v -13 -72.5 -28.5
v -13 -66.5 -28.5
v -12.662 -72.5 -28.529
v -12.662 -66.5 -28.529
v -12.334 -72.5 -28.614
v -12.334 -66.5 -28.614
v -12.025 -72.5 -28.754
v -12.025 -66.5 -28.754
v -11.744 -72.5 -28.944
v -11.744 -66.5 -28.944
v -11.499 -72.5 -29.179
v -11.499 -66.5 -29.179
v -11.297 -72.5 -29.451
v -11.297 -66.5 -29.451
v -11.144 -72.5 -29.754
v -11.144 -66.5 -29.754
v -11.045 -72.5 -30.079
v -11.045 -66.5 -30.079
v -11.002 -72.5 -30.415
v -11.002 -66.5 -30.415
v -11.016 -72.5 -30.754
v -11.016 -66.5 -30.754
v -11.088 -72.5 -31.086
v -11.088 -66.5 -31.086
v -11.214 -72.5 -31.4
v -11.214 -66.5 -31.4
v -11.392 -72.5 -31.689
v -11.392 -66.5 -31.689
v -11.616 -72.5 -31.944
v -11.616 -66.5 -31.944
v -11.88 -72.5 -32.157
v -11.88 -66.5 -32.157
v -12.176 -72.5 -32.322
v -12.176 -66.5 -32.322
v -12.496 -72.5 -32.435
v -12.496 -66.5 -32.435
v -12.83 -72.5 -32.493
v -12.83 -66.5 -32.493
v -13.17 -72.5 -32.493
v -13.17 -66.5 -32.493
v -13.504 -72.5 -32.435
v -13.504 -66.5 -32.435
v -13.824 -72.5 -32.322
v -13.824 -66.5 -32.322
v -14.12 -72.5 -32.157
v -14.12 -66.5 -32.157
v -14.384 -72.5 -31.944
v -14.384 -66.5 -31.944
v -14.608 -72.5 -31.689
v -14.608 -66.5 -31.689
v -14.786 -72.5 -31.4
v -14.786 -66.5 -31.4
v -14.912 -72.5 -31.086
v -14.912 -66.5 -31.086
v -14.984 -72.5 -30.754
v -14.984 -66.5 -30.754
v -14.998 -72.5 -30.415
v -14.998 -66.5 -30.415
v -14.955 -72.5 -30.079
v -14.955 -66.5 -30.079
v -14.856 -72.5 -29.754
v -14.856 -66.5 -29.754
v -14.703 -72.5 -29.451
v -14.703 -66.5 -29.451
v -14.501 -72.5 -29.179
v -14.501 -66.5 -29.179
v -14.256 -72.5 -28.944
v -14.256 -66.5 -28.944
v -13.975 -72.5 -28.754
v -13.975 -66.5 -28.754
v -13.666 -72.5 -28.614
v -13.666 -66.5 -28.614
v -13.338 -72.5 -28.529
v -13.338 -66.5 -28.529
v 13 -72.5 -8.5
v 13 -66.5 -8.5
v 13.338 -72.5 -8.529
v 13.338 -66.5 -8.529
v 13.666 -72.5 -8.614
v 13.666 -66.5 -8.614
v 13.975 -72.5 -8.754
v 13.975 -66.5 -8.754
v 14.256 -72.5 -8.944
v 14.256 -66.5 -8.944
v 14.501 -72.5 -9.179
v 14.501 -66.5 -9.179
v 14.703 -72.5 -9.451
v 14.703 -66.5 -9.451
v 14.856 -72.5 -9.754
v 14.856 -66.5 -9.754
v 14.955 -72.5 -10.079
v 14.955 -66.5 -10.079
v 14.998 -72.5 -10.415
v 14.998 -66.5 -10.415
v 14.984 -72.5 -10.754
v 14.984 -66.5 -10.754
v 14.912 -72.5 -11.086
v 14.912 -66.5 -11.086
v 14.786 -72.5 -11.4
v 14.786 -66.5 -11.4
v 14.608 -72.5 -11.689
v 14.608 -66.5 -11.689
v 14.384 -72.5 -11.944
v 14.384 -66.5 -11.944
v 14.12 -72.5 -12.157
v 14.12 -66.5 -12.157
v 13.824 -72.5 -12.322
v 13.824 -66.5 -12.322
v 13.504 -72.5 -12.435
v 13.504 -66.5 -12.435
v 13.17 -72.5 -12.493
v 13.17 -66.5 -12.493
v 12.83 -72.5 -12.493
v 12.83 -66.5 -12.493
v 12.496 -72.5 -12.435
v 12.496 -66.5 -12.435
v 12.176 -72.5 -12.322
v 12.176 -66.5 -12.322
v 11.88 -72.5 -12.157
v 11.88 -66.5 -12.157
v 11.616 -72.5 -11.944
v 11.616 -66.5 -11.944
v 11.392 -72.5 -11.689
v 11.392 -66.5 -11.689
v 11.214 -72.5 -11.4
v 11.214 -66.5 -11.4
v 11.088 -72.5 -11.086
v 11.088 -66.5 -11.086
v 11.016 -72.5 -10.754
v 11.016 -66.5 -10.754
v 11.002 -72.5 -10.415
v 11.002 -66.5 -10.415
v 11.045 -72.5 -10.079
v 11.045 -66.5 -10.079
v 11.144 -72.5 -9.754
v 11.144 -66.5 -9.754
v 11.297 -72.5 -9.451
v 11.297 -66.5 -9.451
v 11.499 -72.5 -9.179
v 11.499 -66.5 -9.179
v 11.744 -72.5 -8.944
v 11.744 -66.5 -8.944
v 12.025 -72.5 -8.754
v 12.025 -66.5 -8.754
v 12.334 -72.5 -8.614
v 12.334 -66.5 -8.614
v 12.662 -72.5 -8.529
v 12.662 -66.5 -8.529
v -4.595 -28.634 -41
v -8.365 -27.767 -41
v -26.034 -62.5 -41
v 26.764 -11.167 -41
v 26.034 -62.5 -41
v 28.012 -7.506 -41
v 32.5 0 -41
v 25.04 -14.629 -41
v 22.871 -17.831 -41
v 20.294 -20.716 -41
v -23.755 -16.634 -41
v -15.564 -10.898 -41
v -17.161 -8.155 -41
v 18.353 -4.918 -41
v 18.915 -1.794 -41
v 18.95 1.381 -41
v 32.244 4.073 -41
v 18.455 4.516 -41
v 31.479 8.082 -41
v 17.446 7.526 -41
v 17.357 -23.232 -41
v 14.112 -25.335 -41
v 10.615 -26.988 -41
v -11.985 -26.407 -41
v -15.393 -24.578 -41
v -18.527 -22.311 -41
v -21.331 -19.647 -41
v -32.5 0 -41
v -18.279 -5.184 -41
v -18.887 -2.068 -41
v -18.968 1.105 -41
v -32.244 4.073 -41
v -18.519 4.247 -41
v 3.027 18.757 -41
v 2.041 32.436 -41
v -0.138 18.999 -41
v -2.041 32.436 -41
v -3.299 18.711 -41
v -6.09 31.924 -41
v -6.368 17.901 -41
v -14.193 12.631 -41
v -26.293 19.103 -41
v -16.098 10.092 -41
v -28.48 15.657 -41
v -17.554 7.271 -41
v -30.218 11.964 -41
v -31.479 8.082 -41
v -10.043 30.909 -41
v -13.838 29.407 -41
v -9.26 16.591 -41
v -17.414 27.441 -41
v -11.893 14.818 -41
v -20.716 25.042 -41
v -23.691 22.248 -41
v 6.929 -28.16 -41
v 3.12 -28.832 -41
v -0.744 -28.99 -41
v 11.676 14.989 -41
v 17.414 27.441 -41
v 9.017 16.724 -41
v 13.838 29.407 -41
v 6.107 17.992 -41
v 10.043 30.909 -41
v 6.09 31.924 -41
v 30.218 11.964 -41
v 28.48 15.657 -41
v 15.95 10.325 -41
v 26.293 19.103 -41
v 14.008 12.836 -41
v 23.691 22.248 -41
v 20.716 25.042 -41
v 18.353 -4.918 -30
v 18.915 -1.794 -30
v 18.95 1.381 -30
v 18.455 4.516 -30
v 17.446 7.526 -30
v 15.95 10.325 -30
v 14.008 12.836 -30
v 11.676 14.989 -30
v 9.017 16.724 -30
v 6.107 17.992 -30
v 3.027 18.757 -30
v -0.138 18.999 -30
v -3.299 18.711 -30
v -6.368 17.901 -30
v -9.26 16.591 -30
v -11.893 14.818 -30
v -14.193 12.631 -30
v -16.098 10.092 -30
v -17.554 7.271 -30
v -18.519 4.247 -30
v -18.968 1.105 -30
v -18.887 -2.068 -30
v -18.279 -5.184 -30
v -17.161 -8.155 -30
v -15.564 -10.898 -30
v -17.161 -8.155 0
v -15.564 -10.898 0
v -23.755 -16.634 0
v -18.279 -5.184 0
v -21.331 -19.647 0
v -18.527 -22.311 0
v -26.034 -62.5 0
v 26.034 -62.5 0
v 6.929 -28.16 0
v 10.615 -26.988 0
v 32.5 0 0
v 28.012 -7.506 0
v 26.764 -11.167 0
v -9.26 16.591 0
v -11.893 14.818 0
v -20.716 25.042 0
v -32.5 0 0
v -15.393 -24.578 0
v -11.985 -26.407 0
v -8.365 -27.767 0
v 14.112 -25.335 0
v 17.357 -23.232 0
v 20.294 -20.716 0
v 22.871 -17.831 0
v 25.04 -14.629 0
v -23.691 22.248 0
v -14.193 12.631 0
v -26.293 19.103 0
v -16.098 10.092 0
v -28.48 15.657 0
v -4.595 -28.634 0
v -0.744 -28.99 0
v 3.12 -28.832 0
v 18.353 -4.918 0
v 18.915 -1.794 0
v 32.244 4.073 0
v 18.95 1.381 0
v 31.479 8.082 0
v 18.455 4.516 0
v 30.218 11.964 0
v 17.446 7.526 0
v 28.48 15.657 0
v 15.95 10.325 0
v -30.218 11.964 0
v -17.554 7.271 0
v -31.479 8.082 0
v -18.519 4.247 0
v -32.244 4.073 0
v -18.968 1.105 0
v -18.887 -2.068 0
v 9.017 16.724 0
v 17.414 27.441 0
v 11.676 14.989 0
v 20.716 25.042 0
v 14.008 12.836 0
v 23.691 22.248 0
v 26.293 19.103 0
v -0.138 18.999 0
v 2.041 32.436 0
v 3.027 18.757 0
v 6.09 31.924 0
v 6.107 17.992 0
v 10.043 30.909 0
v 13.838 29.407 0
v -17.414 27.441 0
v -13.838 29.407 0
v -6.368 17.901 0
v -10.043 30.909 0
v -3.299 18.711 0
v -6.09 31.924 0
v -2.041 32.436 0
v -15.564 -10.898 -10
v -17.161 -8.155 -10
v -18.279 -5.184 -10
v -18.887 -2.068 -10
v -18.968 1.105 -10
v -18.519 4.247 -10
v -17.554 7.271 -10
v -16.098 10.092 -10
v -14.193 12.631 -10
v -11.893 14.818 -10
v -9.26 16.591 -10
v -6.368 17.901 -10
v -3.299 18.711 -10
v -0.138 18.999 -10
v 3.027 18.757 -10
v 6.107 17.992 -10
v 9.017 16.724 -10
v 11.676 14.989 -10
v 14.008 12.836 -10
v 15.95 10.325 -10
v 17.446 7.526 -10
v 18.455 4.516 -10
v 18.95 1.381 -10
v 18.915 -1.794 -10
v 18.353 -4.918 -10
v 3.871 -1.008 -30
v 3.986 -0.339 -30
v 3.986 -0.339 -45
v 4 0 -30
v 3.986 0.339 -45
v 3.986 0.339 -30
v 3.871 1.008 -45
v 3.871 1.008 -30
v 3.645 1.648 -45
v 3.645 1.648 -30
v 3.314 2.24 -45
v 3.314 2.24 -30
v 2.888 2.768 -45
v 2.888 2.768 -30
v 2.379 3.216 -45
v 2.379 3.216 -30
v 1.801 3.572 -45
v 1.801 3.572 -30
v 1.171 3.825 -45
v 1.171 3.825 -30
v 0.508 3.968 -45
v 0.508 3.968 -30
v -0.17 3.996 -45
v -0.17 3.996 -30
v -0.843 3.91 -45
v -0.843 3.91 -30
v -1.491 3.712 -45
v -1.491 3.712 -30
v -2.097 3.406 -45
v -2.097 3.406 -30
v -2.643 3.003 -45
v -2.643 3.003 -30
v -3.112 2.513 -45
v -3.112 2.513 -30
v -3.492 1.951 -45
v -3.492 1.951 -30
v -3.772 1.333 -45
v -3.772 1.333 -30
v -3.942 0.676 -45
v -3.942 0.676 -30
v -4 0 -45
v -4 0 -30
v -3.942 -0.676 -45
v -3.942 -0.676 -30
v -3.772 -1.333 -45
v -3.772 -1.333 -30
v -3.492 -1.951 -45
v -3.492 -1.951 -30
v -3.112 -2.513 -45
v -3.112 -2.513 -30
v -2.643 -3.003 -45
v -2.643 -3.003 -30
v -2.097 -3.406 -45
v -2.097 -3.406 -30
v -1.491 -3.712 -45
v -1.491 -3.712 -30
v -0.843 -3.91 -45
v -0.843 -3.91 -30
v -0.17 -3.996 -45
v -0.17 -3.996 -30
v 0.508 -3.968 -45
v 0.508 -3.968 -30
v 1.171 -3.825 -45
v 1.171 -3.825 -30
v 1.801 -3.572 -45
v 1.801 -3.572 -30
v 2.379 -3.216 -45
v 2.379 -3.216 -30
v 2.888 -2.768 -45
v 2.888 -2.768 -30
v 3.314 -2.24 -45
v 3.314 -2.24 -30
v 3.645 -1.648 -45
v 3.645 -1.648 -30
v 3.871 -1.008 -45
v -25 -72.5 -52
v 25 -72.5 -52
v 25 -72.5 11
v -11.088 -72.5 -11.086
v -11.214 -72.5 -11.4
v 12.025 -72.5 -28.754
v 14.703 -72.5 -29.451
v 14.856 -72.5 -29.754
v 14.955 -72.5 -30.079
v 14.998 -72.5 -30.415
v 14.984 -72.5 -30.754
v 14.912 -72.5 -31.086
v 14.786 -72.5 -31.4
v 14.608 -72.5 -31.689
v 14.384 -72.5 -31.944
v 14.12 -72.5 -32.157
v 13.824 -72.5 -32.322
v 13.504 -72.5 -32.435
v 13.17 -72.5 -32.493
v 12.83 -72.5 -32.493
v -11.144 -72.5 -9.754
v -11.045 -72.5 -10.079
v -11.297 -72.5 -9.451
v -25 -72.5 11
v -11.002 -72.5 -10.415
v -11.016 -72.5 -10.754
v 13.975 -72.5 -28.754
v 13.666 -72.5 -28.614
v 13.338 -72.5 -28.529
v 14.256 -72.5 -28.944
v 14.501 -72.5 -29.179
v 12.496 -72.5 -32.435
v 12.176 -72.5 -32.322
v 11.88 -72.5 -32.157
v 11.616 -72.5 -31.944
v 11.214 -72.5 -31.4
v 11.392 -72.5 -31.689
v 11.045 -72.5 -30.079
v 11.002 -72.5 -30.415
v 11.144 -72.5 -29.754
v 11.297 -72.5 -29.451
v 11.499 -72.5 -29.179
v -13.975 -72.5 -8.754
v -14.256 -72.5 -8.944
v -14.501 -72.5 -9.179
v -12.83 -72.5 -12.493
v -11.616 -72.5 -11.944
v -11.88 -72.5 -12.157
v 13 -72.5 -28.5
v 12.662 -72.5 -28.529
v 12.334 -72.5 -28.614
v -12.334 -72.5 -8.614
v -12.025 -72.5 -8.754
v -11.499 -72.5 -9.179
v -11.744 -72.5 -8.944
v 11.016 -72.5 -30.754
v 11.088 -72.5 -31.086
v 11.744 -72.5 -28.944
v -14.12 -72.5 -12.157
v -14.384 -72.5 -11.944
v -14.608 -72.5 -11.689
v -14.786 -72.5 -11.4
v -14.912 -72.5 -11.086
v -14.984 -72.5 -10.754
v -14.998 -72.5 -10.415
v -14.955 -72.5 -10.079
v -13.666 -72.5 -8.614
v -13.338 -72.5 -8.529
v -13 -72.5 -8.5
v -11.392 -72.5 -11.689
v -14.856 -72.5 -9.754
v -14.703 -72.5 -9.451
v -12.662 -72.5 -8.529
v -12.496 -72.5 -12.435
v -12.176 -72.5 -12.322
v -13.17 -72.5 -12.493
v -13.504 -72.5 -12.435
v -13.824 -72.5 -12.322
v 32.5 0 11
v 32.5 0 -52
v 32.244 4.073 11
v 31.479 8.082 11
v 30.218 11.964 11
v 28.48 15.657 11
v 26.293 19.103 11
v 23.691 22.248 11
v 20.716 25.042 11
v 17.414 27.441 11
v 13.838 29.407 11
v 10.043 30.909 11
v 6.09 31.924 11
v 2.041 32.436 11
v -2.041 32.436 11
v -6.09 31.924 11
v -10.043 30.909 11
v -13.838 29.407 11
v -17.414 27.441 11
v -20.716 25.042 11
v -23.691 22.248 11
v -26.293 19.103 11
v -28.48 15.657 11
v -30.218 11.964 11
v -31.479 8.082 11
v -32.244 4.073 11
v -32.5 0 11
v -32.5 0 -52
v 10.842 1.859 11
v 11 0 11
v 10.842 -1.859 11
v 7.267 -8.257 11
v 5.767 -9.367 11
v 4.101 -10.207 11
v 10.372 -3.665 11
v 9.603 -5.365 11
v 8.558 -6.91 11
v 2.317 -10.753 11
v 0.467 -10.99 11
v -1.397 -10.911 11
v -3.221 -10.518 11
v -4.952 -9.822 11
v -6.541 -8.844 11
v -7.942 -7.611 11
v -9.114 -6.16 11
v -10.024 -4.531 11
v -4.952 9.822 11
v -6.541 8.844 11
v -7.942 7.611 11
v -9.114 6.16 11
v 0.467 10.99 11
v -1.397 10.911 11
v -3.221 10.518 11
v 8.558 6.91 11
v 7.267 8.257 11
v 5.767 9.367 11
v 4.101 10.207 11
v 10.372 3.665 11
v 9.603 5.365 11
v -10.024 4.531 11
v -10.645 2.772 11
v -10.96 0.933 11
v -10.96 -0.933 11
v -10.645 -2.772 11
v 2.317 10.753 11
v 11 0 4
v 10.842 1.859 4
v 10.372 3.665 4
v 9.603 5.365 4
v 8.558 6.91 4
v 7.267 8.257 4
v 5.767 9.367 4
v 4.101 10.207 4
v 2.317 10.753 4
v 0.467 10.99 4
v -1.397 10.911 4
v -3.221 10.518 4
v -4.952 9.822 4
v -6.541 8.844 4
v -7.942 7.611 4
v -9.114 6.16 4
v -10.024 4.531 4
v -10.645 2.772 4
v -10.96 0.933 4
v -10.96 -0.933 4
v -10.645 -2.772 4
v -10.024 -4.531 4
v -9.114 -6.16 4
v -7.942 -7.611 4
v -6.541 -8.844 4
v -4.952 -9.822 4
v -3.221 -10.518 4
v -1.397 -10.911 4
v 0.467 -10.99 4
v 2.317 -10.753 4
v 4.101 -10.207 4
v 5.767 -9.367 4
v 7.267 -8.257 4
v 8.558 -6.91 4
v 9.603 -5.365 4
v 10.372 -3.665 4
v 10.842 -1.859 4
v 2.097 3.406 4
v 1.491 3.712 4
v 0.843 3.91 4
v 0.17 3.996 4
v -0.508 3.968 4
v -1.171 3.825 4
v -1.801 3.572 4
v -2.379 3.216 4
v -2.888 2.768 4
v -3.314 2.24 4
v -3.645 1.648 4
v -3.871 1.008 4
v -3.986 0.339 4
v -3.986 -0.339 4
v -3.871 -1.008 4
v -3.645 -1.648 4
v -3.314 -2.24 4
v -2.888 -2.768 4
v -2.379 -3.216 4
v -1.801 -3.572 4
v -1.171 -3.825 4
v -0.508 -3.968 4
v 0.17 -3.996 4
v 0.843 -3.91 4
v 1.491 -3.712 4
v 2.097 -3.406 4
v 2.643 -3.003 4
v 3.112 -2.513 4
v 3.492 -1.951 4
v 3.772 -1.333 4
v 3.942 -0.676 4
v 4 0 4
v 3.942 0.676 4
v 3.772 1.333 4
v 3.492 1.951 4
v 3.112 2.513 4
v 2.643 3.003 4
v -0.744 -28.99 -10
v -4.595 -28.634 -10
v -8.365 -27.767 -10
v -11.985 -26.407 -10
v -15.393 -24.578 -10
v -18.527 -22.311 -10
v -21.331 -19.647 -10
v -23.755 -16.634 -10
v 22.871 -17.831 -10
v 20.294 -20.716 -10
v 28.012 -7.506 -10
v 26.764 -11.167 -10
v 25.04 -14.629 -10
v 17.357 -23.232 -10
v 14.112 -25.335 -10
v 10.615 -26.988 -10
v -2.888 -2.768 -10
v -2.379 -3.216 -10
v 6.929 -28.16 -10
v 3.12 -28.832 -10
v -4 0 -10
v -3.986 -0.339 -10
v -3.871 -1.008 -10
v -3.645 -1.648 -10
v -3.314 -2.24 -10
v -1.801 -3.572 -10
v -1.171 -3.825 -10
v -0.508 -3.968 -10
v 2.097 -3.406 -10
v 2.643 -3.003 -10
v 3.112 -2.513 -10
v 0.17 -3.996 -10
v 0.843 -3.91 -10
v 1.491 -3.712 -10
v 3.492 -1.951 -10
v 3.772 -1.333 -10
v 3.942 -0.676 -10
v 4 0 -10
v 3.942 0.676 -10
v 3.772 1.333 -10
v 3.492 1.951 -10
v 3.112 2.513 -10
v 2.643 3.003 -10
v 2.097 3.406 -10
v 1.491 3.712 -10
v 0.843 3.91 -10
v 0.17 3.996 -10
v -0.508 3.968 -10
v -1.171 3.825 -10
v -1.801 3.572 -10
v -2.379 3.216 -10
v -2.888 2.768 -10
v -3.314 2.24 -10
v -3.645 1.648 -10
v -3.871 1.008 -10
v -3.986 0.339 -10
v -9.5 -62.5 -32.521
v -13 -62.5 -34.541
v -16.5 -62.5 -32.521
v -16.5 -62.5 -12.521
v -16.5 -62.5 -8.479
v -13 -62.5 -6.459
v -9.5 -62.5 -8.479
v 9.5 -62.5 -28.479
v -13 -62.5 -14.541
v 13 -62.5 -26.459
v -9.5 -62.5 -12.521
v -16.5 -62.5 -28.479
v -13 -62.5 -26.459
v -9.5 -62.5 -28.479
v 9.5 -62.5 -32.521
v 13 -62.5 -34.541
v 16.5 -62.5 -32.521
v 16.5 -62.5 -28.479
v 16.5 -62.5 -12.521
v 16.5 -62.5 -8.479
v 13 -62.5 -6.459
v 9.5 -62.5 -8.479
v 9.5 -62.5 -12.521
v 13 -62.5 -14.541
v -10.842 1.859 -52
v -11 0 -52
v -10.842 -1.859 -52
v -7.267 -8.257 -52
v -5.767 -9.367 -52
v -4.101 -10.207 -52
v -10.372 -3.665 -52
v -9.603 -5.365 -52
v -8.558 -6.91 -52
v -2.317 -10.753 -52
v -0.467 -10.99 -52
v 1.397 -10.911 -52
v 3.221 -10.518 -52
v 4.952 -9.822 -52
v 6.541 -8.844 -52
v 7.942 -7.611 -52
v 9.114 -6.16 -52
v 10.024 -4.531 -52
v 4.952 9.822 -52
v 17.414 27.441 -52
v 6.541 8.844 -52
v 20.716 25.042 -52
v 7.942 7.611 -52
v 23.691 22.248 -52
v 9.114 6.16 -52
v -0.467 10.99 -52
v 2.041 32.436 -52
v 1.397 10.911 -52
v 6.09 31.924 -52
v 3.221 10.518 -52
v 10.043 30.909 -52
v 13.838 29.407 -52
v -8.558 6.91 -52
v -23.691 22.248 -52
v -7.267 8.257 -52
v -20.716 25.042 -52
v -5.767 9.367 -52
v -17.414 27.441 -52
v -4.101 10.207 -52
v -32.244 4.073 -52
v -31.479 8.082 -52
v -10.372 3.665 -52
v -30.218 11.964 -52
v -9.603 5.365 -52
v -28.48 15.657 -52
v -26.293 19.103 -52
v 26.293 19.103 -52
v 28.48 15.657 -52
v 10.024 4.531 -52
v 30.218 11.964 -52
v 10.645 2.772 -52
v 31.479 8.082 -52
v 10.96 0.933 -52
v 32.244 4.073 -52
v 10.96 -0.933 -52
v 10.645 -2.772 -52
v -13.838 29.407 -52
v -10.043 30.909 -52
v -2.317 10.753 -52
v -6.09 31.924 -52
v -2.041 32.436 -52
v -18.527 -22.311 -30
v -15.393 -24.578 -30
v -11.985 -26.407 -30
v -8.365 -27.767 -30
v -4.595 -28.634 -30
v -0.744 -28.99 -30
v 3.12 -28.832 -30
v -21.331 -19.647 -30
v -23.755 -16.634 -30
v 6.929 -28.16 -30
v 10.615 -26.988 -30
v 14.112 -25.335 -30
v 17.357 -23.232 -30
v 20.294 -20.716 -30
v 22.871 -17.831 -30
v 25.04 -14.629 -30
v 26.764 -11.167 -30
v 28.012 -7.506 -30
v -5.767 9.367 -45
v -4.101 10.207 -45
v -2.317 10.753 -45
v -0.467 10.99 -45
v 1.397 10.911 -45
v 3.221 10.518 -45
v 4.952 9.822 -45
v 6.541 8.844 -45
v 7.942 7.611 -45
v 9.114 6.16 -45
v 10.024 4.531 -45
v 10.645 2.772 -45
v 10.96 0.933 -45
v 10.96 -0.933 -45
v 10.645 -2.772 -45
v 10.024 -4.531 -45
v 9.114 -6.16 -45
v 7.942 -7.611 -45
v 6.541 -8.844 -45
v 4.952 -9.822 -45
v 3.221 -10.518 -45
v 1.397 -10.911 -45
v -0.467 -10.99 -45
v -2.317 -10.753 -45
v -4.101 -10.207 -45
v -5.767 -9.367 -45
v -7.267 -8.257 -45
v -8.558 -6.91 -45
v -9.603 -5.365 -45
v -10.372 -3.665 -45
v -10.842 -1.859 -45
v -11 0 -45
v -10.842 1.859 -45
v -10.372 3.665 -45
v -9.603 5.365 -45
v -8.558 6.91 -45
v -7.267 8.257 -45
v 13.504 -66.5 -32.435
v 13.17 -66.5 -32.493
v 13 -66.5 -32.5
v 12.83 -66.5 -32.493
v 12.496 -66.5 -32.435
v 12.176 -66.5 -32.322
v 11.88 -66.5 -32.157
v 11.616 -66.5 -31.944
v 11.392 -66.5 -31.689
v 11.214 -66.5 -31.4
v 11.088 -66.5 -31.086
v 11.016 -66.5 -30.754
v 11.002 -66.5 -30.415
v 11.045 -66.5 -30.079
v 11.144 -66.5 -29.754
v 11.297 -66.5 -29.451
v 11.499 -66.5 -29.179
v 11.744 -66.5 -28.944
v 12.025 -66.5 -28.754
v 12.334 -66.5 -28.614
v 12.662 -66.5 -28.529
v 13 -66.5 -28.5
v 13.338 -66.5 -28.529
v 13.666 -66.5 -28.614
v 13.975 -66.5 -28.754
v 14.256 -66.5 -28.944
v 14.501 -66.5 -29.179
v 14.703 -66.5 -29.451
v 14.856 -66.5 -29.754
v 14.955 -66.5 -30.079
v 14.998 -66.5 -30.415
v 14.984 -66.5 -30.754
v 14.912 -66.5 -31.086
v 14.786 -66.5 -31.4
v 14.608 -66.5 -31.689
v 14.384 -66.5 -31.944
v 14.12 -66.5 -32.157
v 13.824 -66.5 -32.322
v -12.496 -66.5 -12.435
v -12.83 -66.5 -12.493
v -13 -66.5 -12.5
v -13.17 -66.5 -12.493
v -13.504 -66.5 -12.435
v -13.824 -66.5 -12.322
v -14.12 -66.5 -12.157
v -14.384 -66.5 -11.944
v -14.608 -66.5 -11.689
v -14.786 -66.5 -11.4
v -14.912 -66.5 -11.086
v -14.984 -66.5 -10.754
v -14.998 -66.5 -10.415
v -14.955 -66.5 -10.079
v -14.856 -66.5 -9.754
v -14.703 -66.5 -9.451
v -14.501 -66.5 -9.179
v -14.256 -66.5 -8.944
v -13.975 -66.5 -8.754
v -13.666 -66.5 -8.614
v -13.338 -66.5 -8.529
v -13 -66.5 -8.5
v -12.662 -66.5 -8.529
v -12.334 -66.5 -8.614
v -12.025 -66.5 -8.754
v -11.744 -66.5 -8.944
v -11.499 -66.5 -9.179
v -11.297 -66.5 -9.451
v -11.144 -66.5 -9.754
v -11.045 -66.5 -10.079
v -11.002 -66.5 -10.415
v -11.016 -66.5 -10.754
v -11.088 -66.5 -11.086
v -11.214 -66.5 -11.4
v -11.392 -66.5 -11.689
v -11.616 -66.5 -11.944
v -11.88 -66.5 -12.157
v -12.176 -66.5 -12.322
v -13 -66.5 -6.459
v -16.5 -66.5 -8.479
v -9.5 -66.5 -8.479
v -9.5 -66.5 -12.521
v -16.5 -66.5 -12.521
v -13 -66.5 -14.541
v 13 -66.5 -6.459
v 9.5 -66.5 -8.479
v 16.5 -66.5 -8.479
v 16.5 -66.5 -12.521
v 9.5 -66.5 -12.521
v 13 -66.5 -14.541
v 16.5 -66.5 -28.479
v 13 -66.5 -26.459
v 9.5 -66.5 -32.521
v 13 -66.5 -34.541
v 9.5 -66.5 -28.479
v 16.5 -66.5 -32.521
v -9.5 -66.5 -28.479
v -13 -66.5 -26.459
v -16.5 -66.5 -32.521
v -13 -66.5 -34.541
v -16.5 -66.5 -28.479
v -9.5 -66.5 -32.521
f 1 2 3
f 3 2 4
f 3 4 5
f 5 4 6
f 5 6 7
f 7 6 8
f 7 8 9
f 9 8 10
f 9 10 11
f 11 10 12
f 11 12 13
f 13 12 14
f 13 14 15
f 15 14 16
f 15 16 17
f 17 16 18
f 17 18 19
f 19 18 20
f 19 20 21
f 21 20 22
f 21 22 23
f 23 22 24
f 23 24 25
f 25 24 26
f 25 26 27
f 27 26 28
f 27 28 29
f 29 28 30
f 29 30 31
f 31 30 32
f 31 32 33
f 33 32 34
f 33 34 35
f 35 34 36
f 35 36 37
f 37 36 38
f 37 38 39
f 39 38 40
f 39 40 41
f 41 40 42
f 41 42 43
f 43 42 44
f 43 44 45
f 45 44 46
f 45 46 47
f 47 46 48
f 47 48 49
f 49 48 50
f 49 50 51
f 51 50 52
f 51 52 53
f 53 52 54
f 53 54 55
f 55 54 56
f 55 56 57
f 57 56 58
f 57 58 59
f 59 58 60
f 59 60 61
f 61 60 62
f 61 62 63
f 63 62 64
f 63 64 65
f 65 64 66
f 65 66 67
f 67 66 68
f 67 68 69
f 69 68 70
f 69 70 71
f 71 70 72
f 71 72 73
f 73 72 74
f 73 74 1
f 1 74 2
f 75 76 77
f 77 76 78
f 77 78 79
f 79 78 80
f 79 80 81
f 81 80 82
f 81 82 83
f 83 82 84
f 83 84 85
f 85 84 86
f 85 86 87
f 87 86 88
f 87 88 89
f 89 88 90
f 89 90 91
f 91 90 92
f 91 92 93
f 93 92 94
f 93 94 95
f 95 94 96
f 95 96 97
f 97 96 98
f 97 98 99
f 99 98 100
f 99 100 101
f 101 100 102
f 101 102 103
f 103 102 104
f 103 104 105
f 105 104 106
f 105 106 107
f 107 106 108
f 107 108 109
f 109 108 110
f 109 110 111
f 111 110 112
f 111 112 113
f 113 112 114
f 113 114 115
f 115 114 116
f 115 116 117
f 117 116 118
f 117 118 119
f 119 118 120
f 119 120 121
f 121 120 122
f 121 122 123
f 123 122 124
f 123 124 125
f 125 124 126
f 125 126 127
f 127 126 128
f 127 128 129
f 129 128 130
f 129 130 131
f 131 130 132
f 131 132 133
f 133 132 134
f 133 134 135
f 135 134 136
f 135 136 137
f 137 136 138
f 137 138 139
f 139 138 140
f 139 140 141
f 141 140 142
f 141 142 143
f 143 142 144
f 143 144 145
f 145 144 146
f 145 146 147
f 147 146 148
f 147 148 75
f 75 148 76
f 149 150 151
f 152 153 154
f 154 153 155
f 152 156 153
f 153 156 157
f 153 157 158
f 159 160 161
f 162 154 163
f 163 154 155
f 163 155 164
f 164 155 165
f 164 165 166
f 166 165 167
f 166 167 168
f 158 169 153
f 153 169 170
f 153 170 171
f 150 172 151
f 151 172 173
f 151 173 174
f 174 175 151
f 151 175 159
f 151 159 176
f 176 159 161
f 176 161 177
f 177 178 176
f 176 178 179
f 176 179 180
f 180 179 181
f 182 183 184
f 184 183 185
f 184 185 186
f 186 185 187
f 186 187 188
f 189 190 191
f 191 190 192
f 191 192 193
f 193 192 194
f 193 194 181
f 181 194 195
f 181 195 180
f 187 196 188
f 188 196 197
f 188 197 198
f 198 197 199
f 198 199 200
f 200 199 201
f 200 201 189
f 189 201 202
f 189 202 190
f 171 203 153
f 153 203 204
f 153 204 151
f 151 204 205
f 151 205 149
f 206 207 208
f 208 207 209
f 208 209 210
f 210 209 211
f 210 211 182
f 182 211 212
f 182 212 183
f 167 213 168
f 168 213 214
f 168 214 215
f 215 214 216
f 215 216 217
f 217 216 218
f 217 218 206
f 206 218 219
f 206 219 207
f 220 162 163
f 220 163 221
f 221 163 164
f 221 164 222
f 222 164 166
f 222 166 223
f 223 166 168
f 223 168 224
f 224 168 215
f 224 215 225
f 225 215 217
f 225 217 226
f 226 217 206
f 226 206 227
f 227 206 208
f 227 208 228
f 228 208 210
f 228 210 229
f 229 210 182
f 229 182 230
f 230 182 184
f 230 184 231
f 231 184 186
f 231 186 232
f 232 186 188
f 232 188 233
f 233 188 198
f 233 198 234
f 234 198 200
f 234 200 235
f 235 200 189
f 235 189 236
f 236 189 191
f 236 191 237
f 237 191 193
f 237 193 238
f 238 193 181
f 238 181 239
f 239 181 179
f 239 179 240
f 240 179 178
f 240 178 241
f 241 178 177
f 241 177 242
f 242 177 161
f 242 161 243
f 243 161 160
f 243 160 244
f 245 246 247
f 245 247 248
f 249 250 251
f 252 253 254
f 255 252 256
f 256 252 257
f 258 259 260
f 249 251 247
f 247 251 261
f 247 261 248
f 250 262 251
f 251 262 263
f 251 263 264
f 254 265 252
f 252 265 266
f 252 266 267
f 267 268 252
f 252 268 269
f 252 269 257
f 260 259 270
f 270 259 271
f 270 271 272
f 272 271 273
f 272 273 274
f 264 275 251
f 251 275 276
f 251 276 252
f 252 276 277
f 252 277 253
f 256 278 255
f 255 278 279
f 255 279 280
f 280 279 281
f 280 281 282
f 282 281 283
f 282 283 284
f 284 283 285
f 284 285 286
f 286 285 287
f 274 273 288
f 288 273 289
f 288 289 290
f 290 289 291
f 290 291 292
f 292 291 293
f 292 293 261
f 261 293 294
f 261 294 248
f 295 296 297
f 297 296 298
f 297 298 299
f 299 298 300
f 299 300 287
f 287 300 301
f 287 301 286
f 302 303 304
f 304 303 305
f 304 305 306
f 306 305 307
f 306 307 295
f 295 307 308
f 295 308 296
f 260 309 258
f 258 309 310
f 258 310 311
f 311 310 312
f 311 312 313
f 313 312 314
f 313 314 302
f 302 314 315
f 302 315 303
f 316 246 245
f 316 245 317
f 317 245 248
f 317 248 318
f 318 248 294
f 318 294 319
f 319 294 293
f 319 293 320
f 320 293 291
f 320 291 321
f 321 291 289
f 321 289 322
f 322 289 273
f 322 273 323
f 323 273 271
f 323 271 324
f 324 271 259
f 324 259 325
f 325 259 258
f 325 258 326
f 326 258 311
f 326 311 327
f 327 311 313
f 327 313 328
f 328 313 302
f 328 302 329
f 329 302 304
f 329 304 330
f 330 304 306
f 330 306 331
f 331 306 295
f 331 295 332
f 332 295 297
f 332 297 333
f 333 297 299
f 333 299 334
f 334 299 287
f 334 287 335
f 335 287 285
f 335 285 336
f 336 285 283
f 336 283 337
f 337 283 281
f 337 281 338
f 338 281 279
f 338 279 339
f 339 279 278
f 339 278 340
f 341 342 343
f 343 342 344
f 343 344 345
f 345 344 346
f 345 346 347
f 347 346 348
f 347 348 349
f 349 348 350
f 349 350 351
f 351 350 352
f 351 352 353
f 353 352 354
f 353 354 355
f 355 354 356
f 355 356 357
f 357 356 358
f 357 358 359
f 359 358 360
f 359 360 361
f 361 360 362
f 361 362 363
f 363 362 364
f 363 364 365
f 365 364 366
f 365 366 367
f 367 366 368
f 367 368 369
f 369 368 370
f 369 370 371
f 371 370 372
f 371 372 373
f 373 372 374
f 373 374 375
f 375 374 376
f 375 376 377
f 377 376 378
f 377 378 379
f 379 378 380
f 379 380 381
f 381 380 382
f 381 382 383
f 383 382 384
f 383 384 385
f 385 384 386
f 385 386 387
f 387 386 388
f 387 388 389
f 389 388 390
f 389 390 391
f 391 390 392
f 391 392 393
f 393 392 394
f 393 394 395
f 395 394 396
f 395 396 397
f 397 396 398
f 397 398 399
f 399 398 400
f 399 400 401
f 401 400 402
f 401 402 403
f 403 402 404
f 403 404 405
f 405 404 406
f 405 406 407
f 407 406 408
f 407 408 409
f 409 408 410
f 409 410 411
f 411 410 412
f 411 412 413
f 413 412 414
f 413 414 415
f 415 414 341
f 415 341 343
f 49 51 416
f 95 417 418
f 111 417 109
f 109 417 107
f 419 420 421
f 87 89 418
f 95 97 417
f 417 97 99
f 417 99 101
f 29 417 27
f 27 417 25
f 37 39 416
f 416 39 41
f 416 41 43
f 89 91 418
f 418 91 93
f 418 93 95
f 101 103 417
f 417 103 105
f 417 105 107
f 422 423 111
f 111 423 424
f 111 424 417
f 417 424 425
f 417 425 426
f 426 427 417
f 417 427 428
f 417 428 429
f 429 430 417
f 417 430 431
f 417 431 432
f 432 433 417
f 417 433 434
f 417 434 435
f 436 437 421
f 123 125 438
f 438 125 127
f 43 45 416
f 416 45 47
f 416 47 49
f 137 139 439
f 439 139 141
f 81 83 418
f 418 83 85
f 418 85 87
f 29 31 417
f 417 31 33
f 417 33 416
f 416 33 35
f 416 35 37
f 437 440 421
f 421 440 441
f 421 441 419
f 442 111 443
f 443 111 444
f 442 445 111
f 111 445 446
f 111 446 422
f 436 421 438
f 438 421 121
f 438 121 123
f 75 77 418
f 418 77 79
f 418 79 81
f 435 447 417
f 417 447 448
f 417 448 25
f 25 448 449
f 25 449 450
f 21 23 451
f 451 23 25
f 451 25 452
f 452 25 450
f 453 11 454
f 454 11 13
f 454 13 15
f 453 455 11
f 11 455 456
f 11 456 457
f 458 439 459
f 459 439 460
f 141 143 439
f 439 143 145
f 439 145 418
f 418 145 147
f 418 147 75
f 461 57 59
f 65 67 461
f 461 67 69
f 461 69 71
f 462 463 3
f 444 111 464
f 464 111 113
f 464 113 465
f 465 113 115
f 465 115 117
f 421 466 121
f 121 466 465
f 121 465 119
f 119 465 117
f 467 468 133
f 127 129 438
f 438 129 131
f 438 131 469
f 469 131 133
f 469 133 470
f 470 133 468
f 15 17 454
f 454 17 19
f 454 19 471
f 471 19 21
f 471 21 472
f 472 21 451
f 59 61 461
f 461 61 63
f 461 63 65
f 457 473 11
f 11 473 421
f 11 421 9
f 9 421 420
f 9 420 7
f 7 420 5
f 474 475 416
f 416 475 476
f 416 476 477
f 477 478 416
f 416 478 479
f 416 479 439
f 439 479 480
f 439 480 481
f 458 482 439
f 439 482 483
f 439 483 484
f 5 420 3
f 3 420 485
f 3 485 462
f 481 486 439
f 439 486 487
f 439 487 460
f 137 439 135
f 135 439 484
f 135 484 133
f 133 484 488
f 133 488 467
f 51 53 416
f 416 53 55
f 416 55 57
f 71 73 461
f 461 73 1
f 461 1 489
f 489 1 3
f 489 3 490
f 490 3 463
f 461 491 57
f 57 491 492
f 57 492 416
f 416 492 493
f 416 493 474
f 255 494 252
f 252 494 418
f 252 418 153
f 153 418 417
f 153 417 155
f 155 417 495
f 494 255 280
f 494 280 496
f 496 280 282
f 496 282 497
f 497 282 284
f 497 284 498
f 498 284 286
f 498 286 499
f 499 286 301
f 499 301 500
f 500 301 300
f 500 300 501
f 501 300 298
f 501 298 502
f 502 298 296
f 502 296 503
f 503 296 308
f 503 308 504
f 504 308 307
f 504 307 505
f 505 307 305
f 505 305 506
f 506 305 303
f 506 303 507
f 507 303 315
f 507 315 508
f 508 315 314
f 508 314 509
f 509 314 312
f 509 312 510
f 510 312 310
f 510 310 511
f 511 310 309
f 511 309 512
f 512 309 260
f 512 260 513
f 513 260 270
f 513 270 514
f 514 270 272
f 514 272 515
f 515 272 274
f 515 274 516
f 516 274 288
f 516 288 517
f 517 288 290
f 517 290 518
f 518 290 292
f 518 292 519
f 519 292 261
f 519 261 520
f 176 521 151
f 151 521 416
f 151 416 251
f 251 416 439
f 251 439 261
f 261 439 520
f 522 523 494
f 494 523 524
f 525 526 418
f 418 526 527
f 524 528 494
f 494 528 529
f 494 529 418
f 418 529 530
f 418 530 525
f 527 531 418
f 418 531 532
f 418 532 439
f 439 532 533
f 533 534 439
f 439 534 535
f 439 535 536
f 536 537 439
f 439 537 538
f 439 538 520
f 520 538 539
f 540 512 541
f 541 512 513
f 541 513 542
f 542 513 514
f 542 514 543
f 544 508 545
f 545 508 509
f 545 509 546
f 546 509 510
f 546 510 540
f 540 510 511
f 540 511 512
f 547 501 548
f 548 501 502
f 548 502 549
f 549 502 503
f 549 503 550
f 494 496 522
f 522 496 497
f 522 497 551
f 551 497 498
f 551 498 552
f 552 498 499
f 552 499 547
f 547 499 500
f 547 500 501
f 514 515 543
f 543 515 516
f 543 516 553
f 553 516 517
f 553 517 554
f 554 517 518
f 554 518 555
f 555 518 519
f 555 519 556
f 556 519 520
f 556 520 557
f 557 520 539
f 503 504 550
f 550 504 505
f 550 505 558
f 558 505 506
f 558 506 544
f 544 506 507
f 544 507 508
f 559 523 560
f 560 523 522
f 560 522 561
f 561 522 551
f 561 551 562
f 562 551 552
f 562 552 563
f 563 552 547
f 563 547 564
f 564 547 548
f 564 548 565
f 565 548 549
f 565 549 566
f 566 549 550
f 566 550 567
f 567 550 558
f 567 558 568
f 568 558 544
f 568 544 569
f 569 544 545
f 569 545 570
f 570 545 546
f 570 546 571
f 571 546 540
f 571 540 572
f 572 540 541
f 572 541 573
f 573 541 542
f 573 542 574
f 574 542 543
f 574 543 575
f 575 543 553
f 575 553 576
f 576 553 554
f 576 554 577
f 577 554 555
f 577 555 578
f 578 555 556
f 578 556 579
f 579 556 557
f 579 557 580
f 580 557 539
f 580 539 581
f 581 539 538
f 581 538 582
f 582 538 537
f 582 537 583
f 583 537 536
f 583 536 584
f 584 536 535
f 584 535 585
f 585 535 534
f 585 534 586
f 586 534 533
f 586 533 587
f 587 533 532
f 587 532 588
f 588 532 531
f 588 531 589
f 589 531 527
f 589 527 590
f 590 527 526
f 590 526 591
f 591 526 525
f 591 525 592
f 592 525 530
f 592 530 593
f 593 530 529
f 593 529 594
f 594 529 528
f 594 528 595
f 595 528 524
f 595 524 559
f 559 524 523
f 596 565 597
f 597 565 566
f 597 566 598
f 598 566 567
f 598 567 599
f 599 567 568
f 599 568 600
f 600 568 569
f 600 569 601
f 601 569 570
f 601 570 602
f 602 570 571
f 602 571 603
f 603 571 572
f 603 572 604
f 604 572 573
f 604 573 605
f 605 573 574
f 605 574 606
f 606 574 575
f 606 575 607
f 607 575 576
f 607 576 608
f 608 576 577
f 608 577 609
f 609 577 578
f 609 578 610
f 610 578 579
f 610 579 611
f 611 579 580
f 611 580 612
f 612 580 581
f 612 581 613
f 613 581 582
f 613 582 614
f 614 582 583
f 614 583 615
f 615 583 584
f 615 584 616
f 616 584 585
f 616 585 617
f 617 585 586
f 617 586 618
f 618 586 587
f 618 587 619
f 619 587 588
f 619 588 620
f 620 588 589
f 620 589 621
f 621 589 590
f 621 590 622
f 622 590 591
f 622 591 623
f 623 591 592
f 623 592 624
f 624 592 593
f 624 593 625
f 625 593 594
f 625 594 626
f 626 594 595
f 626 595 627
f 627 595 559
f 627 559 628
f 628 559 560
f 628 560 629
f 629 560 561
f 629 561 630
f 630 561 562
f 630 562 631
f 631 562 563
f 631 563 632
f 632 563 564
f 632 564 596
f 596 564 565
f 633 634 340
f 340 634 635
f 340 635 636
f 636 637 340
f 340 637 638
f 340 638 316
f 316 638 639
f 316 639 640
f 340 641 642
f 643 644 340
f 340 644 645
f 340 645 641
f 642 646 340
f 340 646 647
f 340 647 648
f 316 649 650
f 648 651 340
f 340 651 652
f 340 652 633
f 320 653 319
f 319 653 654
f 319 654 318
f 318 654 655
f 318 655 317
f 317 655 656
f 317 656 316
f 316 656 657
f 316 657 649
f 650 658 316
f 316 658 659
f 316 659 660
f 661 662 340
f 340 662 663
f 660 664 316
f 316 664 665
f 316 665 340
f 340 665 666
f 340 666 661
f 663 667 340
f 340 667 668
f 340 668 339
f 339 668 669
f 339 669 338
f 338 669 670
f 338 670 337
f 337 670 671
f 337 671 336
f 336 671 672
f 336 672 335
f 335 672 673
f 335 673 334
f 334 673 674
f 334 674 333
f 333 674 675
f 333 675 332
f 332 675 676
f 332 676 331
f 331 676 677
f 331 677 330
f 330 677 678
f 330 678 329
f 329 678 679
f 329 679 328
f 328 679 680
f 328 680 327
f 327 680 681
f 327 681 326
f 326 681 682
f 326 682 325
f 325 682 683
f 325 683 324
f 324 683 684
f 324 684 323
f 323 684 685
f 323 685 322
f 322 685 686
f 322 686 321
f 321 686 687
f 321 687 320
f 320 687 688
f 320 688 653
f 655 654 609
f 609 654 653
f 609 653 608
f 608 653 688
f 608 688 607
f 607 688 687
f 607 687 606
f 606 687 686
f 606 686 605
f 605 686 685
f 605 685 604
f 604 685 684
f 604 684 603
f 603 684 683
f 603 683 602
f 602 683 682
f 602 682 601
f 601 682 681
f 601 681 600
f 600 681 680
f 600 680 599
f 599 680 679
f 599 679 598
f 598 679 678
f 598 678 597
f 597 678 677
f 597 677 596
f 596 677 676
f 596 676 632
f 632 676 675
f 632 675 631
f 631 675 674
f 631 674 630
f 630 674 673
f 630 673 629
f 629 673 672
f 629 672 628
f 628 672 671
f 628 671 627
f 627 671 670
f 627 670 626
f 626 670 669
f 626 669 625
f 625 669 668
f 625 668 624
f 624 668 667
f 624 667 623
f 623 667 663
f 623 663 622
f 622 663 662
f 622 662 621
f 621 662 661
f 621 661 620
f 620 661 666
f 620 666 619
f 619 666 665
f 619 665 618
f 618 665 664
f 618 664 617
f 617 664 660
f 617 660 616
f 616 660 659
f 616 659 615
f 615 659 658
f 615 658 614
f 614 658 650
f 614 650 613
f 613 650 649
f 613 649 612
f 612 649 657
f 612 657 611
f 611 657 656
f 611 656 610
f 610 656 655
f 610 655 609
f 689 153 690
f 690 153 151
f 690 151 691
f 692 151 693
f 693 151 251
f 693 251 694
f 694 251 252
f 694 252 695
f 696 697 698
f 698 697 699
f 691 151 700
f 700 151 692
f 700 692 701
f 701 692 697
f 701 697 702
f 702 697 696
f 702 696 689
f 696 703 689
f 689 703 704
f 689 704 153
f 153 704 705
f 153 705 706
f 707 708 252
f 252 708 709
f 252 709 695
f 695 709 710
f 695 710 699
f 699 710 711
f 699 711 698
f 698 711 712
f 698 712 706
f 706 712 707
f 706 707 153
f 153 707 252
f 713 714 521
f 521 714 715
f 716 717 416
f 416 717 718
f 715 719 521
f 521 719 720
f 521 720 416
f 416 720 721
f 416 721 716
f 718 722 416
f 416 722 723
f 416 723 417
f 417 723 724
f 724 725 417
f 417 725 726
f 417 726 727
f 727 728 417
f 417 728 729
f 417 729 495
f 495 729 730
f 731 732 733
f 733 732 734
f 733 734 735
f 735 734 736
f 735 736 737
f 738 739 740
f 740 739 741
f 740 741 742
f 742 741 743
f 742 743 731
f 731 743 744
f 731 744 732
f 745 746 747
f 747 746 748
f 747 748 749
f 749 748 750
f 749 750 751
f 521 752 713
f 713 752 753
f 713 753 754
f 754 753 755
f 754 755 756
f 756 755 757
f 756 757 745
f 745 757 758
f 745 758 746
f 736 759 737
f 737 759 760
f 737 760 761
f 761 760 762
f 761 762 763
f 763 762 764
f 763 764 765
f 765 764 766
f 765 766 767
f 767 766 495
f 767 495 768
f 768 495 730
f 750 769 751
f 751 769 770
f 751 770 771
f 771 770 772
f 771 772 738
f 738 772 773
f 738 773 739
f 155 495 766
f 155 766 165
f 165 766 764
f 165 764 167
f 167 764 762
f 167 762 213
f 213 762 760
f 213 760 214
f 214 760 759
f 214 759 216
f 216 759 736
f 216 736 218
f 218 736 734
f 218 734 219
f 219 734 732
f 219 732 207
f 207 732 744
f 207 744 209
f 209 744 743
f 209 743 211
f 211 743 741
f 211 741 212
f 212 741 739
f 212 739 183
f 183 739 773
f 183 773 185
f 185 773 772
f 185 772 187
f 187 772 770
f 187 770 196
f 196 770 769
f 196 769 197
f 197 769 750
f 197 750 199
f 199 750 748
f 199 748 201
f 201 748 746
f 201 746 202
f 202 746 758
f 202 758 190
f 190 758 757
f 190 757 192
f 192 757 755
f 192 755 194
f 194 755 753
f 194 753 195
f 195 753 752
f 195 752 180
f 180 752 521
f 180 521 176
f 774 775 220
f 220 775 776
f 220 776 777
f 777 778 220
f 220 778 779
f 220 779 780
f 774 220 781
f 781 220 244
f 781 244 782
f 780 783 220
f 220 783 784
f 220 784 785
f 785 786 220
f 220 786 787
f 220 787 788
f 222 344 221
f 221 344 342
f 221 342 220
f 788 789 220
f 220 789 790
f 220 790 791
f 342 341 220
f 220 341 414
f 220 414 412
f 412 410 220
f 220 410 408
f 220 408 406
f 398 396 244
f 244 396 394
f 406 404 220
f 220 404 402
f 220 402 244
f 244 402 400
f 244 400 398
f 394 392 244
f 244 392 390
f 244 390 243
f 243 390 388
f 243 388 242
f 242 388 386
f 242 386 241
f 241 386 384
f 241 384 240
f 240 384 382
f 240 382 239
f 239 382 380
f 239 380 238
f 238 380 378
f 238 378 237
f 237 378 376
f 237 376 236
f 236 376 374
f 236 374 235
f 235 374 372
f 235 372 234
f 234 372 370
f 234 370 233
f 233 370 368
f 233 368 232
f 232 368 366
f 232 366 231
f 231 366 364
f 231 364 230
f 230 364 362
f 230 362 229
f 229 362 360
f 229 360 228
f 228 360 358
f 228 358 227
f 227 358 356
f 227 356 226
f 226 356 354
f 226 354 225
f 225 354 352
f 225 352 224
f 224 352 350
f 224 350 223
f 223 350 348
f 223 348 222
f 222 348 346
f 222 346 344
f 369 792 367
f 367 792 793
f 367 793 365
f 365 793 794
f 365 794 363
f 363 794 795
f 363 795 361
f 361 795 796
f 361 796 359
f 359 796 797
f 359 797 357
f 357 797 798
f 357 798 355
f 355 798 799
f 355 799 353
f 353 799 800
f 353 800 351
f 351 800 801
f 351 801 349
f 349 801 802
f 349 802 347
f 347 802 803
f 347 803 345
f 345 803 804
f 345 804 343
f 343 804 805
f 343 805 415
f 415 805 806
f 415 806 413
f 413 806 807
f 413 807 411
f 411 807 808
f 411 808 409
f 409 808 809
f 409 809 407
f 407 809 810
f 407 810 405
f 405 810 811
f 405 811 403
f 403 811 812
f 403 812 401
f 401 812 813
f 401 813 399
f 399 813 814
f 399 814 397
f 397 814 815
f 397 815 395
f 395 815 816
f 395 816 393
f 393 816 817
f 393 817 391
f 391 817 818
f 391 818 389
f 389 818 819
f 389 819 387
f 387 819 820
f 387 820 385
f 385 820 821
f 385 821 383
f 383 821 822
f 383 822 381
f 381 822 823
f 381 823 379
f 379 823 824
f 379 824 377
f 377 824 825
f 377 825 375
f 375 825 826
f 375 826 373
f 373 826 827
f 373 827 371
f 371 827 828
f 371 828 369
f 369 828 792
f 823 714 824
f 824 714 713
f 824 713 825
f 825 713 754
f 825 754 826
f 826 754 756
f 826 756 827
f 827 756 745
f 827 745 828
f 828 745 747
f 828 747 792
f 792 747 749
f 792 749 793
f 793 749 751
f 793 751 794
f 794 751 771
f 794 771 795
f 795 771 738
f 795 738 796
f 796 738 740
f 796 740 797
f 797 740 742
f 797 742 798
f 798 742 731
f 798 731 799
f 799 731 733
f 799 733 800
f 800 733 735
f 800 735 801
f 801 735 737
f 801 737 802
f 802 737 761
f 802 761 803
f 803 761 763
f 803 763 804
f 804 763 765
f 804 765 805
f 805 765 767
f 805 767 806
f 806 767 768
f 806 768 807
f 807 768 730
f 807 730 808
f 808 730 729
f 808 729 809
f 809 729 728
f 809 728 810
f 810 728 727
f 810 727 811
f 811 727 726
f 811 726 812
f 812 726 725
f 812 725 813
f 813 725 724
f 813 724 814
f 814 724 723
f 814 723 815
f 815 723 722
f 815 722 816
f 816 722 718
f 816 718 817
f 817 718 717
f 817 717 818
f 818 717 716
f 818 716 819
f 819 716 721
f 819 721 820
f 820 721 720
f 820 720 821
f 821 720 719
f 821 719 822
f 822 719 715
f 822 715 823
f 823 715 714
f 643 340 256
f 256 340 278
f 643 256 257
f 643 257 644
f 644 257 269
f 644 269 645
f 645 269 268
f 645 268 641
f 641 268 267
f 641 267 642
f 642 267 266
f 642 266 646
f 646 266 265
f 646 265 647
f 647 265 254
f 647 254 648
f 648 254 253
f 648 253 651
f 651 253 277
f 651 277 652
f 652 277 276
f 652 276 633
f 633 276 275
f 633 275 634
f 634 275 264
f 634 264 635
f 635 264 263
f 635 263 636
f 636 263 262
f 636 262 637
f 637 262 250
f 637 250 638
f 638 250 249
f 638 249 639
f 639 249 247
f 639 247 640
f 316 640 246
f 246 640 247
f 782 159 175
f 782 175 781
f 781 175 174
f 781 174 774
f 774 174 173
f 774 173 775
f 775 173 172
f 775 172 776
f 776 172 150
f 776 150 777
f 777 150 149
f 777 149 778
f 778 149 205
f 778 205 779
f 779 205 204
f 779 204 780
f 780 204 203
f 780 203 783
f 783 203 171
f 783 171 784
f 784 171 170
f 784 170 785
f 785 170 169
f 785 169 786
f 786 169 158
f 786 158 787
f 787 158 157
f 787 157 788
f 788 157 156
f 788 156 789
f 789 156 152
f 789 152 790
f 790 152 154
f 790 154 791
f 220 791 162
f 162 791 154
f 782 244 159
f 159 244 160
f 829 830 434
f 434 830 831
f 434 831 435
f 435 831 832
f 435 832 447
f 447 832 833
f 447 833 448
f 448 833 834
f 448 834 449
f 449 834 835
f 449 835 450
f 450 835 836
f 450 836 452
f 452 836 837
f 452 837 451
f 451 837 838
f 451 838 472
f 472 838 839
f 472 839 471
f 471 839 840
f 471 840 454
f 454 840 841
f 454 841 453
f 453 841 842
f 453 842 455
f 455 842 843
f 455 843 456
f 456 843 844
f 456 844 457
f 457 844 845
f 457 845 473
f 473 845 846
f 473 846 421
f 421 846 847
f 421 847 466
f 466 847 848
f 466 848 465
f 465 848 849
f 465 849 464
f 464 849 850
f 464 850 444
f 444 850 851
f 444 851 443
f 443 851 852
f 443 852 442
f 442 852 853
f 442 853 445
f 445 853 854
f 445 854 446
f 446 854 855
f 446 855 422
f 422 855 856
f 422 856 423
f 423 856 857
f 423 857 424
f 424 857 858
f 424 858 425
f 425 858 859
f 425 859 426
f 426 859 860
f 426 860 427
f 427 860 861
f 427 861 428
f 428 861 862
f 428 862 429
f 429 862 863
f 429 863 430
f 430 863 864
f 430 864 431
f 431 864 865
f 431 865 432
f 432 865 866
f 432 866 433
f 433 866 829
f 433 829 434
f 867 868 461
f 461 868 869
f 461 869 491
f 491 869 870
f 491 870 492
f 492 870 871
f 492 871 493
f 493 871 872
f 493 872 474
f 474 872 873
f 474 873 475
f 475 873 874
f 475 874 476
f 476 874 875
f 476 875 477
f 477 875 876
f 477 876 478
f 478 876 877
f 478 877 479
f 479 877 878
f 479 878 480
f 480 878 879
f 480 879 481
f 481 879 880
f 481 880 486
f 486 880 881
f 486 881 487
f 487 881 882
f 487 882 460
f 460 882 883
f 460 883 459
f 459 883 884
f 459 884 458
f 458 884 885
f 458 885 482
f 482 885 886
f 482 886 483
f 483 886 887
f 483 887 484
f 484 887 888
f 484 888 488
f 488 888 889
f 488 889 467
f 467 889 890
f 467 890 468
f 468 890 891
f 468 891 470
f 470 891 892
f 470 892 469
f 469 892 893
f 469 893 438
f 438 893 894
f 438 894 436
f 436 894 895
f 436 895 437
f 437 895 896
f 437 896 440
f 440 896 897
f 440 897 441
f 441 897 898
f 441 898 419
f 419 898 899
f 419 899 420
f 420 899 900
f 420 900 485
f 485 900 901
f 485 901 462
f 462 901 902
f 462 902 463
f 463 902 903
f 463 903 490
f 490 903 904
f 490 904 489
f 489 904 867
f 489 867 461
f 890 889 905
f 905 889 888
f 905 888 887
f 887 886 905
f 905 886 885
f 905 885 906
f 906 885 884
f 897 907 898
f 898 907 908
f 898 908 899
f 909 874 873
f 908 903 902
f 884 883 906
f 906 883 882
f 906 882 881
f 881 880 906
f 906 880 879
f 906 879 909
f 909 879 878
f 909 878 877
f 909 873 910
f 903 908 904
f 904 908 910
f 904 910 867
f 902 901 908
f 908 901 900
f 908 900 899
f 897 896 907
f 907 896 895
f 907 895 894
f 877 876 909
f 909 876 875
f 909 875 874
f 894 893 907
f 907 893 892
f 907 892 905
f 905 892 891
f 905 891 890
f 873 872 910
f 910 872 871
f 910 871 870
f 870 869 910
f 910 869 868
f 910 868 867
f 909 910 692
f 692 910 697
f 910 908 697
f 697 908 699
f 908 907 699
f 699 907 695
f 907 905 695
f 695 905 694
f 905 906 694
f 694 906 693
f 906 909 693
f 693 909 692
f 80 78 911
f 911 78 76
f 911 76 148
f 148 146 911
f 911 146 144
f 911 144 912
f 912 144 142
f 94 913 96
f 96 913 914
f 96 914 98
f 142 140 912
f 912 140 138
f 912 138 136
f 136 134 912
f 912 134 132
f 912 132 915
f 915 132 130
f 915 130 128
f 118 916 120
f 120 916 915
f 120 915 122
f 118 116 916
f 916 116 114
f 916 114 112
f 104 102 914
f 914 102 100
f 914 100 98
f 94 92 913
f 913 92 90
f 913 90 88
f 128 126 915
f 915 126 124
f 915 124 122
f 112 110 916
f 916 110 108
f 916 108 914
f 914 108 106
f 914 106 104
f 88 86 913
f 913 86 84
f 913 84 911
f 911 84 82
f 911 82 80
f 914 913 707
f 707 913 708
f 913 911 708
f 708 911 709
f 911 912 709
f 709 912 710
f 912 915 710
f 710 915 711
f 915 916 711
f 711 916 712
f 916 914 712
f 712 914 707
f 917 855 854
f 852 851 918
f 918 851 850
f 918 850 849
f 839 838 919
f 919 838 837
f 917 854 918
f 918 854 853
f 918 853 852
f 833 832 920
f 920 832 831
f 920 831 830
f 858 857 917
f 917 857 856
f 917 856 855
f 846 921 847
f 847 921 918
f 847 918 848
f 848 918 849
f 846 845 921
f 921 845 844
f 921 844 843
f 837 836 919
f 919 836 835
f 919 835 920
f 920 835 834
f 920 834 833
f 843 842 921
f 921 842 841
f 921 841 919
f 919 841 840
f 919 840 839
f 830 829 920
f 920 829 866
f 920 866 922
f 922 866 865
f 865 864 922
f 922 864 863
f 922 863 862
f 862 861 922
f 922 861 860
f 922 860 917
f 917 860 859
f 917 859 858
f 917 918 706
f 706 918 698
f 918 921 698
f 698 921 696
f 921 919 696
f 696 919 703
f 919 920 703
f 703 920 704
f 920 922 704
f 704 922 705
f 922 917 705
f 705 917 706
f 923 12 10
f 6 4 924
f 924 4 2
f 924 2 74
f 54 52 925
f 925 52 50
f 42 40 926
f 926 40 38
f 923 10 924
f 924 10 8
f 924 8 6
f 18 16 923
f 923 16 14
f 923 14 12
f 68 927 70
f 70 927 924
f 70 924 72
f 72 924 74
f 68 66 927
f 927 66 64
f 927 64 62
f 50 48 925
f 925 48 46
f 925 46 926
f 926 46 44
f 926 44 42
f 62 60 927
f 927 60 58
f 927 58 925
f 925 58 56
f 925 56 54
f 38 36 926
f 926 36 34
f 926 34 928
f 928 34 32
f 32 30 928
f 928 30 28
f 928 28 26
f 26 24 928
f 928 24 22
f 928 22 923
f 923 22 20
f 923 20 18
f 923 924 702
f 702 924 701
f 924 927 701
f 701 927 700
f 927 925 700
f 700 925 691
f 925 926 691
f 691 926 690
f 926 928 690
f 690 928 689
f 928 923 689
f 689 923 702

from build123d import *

# Parameters (mm, degrees)
SALIENTE_EXTRUIR1_DEPTH = 11
CROQUIS2_R              = 11
CORTAR_EXTRUIR1_DEPTH   = 7
CROQUIS3_R              = 19
SALIENTE_EXTRUIR2_DEPTH = 10
CROQUIS4_R              = 4
CORTAR_EXTRUIR2_DEPTH   = 18
SALIENTE_EXTRUIR3_DEPTH = 52
SALIENTE_EXTRUIR4_DEPTH = 11
CORTAR_EXTRUIR3_START   = -22
CROQUIS7_R              = 4
CORTAR_EXTRUIR3_DEPTH   = 22
SALIENTE_EXTRUIR5_START = 11
CROQUIS8_R              = 19
SALIENTE_EXTRUIR5_DEPTH = 11
CROQUIS10_R             = 4
CORTAR_EXTRUIR5_DEPTH   = 102.39773173
CORTAR_EXTRUIR6_START   = -7
CROQUIS11_R             = 11
CORTAR_EXTRUIR6_DEPTH   = 7
SALIENTE_EXTRUIR6_DEPTH = 10
SALIENTE_EXTRUIR7_START = 11
SALIENTE_EXTRUIR7_DEPTH = 11
CROQUIS14_R             = 2
CORTAR_EXTRUIR7_DEPTH   = 11
CORTAR_EXTRUIR8_DEPTH   = 4


with BuildPart() as part:
    # Croquis1 → Saliente-Extruir1 (new body)
    with BuildSketch(Plane.XY):
        with BuildLine():
            Line((-32.5, 0), (-25, -72.5))
            Line((-25, -72.5), (25, -72.5))
            Line((25, -72.5), (32.5, 0))
            ThreePointArc((32.5, 0), (0, 32.5), (-32.5, 0))
        make_face()
    extrude(amount=SALIENTE_EXTRUIR1_DEPTH)

    # Croquis2 → Cortar-Extruir1 (cut)
    with BuildSketch(Plane.XY.offset(11)):
        Circle(CROQUIS2_R)
    extrude(amount=-CORTAR_EXTRUIR1_DEPTH, mode=Mode.SUBTRACT)

    # Croquis3 → Saliente-Extruir2 (add)
    with BuildSketch(Plane(origin=(0, 0, 0), x_dir=(-1, 0, 0), z_dir=(0, 0, -1))):
        with Locations(Location((0, 0, 0), (0, 0, 180))):
            Circle(CROQUIS3_R)
    extrude(amount=SALIENTE_EXTRUIR2_DEPTH)

    # Croquis4 → Cortar-Extruir2 (cut)
    with BuildSketch(Plane.XY.offset(4)):
        Circle(CROQUIS4_R)
    extrude(amount=-CORTAR_EXTRUIR2_DEPTH, mode=Mode.SUBTRACT)

    # Croquis5 → Saliente-Extruir3 (add)
    with BuildSketch(Plane(origin=(0, 0, 0), x_dir=(-1, 0, 0), z_dir=(0, 0, -1))):
        Polygon((-25, -72.5), (25, -72.5), (26.034482759, -62.5), (-26.034482759, -62.5), align=None)
    extrude(amount=SALIENTE_EXTRUIR3_DEPTH)

    # Croquis6 → Saliente-Extruir4 (add)
    with BuildSketch(Plane(origin=(0, 0, -52), x_dir=(-1, 0, 0), z_dir=(0, 0, -1))):
        with BuildLine():
            Line((25, -72.5), (32.5, 0))
            ThreePointArc((32.5, 0), (0, 32.5), (-32.5, 0))
            Line((-32.5, 0), (-25, -72.5))
            Line((-25, -72.5), (25, -72.5))
        make_face()
    extrude(amount=-SALIENTE_EXTRUIR4_DEPTH)

    # Croquis7 → Cortar-Extruir3 (cut)
    with BuildSketch(Plane(origin=(0, 0, -52), x_dir=(-1, 0, 0), z_dir=(0, 0, -1)).offset(CORTAR_EXTRUIR3_START)):
        with Locations(Location((0, 0, 0), (0, 0, 180))):
            Circle(CROQUIS7_R)
    extrude(amount=CORTAR_EXTRUIR3_DEPTH, mode=Mode.SUBTRACT)

    # Croquis8 → Saliente-Extruir5 (add)
    with BuildSketch(Plane.XY.offset(-41).offset(SALIENTE_EXTRUIR5_START)):
        Circle(CROQUIS8_R)
    extrude(amount=-SALIENTE_EXTRUIR5_DEPTH)

    # Croquis10 → Cortar-Extruir5 (cut, through all)
    with BuildSketch(Plane(origin=(0, 0, -52), x_dir=(-1, 0, 0), z_dir=(0, 0, -1))):
        with Locations(Location((0, 0, 0), (0, 0, 180))):
            Circle(CROQUIS10_R)
    extrude(amount=-CORTAR_EXTRUIR5_DEPTH, mode=Mode.SUBTRACT)

    # Croquis11 → Cortar-Extruir6 (cut)
    with BuildSketch(Plane(origin=(0, 0, -52), x_dir=(-1, 0, 0), z_dir=(0, 0, -1)).offset(CORTAR_EXTRUIR6_START)):
        with Locations(Location((0, 0, 0), (0, 0, 180))):
            Circle(CROQUIS11_R)
    extrude(amount=CORTAR_EXTRUIR6_DEPTH, mode=Mode.SUBTRACT)

    # Croquis12 → Saliente-Extruir6 (add)
    with BuildSketch(Plane(origin=(0, 0, 0), x_dir=(-1, 0, 0), z_dir=(0, 0, -1))):
        with BuildLine():
            Line((-18.352590699, -4.917561857), (-28.011848962, -7.505752308))
            ThreePointArc((-28.011848962, -7.505752308), (-5.035797152, -28.559424837), (23.755409284, -16.633716654))
            Line((23.755409284, -16.633716654), (15.563888841, -10.897952291))
            ThreePointArc((15.563888841, -10.897952291), (-3.299315376, -18.711347307), (-18.352590699, -4.917561857))
        make_face()
    extrude(amount=SALIENTE_EXTRUIR6_DEPTH)

    # Croquis13 → Saliente-Extruir7 (add)
    with BuildSketch(Plane.XY.offset(-41).offset(SALIENTE_EXTRUIR7_START)):
        with BuildLine():
            Line((-15.563888841, -10.897952291), (-23.755409284, -16.633716654))
            ThreePointArc((-23.755409284, -16.633716654), (5.035797152, -28.559424837), (28.011848962, -7.505752308))
            Line((28.011848962, -7.505752308), (18.352590699, -4.917561857))
            ThreePointArc((18.352590699, -4.917561857), (3.299315376, -18.711347307), (-15.563888841, -10.897952291))
        make_face()
    extrude(amount=-SALIENTE_EXTRUIR7_DEPTH)

    # Croquis14 → Cortar-Extruir7 (cut)
    with BuildSketch(Plane(origin=(0, -62.5, 0), x_dir=(1, 0, 0), z_dir=(0, 1, 0))):
        with Locations(Location((-13, 30.5, 0), (0, 0, 270))):
            Circle(CROQUIS14_R)
        with Locations(Location((13, 30.5, 0), (0, 0, 270))):
            Circle(CROQUIS14_R)
        with Locations(Location((13, 10.5, 0), (0, 0, 270))):
            Circle(CROQUIS14_R)
        with Locations(Location((-13, 10.5, 0), (0, 0, 270))):
            Circle(CROQUIS14_R)
    extrude(amount=-CORTAR_EXTRUIR7_DEPTH, mode=Mode.SUBTRACT)

    # Croquis15 → Cortar-Extruir8 (cut)
    with BuildSketch(Plane(origin=(0, -62.5, 0), x_dir=(1, 0, 0), z_dir=(0, 1, 0))):
        Polygon((13, 26.458548116), (9.5, 28.479274058), (9.5, 32.520725942), (13, 34.541451884), (16.5, 32.520725942), (16.5, 28.479274058), align=None)
        Polygon((-9.5, 28.479274058), (-9.5, 32.520725942), (-13, 34.541451884), (-16.5, 32.520725942), (-16.5, 28.479274058), (-13, 26.458548116), align=None)
        Polygon((16.5, 12.520725942), (13, 14.541451884), (9.5, 12.520725942), (9.5, 8.479274058), (13, 6.458548116), (16.5, 8.479274058), align=None)
        Polygon((-13, 14.541451884), (-9.5, 12.520725942), (-9.5, 8.479274058), (-13, 6.458548116), (-16.5, 8.479274058), (-16.5, 12.520725942), align=None)
    extrude(amount=-CORTAR_EXTRUIR8_DEPTH, mode=Mode.SUBTRACT)


solid = part.part
